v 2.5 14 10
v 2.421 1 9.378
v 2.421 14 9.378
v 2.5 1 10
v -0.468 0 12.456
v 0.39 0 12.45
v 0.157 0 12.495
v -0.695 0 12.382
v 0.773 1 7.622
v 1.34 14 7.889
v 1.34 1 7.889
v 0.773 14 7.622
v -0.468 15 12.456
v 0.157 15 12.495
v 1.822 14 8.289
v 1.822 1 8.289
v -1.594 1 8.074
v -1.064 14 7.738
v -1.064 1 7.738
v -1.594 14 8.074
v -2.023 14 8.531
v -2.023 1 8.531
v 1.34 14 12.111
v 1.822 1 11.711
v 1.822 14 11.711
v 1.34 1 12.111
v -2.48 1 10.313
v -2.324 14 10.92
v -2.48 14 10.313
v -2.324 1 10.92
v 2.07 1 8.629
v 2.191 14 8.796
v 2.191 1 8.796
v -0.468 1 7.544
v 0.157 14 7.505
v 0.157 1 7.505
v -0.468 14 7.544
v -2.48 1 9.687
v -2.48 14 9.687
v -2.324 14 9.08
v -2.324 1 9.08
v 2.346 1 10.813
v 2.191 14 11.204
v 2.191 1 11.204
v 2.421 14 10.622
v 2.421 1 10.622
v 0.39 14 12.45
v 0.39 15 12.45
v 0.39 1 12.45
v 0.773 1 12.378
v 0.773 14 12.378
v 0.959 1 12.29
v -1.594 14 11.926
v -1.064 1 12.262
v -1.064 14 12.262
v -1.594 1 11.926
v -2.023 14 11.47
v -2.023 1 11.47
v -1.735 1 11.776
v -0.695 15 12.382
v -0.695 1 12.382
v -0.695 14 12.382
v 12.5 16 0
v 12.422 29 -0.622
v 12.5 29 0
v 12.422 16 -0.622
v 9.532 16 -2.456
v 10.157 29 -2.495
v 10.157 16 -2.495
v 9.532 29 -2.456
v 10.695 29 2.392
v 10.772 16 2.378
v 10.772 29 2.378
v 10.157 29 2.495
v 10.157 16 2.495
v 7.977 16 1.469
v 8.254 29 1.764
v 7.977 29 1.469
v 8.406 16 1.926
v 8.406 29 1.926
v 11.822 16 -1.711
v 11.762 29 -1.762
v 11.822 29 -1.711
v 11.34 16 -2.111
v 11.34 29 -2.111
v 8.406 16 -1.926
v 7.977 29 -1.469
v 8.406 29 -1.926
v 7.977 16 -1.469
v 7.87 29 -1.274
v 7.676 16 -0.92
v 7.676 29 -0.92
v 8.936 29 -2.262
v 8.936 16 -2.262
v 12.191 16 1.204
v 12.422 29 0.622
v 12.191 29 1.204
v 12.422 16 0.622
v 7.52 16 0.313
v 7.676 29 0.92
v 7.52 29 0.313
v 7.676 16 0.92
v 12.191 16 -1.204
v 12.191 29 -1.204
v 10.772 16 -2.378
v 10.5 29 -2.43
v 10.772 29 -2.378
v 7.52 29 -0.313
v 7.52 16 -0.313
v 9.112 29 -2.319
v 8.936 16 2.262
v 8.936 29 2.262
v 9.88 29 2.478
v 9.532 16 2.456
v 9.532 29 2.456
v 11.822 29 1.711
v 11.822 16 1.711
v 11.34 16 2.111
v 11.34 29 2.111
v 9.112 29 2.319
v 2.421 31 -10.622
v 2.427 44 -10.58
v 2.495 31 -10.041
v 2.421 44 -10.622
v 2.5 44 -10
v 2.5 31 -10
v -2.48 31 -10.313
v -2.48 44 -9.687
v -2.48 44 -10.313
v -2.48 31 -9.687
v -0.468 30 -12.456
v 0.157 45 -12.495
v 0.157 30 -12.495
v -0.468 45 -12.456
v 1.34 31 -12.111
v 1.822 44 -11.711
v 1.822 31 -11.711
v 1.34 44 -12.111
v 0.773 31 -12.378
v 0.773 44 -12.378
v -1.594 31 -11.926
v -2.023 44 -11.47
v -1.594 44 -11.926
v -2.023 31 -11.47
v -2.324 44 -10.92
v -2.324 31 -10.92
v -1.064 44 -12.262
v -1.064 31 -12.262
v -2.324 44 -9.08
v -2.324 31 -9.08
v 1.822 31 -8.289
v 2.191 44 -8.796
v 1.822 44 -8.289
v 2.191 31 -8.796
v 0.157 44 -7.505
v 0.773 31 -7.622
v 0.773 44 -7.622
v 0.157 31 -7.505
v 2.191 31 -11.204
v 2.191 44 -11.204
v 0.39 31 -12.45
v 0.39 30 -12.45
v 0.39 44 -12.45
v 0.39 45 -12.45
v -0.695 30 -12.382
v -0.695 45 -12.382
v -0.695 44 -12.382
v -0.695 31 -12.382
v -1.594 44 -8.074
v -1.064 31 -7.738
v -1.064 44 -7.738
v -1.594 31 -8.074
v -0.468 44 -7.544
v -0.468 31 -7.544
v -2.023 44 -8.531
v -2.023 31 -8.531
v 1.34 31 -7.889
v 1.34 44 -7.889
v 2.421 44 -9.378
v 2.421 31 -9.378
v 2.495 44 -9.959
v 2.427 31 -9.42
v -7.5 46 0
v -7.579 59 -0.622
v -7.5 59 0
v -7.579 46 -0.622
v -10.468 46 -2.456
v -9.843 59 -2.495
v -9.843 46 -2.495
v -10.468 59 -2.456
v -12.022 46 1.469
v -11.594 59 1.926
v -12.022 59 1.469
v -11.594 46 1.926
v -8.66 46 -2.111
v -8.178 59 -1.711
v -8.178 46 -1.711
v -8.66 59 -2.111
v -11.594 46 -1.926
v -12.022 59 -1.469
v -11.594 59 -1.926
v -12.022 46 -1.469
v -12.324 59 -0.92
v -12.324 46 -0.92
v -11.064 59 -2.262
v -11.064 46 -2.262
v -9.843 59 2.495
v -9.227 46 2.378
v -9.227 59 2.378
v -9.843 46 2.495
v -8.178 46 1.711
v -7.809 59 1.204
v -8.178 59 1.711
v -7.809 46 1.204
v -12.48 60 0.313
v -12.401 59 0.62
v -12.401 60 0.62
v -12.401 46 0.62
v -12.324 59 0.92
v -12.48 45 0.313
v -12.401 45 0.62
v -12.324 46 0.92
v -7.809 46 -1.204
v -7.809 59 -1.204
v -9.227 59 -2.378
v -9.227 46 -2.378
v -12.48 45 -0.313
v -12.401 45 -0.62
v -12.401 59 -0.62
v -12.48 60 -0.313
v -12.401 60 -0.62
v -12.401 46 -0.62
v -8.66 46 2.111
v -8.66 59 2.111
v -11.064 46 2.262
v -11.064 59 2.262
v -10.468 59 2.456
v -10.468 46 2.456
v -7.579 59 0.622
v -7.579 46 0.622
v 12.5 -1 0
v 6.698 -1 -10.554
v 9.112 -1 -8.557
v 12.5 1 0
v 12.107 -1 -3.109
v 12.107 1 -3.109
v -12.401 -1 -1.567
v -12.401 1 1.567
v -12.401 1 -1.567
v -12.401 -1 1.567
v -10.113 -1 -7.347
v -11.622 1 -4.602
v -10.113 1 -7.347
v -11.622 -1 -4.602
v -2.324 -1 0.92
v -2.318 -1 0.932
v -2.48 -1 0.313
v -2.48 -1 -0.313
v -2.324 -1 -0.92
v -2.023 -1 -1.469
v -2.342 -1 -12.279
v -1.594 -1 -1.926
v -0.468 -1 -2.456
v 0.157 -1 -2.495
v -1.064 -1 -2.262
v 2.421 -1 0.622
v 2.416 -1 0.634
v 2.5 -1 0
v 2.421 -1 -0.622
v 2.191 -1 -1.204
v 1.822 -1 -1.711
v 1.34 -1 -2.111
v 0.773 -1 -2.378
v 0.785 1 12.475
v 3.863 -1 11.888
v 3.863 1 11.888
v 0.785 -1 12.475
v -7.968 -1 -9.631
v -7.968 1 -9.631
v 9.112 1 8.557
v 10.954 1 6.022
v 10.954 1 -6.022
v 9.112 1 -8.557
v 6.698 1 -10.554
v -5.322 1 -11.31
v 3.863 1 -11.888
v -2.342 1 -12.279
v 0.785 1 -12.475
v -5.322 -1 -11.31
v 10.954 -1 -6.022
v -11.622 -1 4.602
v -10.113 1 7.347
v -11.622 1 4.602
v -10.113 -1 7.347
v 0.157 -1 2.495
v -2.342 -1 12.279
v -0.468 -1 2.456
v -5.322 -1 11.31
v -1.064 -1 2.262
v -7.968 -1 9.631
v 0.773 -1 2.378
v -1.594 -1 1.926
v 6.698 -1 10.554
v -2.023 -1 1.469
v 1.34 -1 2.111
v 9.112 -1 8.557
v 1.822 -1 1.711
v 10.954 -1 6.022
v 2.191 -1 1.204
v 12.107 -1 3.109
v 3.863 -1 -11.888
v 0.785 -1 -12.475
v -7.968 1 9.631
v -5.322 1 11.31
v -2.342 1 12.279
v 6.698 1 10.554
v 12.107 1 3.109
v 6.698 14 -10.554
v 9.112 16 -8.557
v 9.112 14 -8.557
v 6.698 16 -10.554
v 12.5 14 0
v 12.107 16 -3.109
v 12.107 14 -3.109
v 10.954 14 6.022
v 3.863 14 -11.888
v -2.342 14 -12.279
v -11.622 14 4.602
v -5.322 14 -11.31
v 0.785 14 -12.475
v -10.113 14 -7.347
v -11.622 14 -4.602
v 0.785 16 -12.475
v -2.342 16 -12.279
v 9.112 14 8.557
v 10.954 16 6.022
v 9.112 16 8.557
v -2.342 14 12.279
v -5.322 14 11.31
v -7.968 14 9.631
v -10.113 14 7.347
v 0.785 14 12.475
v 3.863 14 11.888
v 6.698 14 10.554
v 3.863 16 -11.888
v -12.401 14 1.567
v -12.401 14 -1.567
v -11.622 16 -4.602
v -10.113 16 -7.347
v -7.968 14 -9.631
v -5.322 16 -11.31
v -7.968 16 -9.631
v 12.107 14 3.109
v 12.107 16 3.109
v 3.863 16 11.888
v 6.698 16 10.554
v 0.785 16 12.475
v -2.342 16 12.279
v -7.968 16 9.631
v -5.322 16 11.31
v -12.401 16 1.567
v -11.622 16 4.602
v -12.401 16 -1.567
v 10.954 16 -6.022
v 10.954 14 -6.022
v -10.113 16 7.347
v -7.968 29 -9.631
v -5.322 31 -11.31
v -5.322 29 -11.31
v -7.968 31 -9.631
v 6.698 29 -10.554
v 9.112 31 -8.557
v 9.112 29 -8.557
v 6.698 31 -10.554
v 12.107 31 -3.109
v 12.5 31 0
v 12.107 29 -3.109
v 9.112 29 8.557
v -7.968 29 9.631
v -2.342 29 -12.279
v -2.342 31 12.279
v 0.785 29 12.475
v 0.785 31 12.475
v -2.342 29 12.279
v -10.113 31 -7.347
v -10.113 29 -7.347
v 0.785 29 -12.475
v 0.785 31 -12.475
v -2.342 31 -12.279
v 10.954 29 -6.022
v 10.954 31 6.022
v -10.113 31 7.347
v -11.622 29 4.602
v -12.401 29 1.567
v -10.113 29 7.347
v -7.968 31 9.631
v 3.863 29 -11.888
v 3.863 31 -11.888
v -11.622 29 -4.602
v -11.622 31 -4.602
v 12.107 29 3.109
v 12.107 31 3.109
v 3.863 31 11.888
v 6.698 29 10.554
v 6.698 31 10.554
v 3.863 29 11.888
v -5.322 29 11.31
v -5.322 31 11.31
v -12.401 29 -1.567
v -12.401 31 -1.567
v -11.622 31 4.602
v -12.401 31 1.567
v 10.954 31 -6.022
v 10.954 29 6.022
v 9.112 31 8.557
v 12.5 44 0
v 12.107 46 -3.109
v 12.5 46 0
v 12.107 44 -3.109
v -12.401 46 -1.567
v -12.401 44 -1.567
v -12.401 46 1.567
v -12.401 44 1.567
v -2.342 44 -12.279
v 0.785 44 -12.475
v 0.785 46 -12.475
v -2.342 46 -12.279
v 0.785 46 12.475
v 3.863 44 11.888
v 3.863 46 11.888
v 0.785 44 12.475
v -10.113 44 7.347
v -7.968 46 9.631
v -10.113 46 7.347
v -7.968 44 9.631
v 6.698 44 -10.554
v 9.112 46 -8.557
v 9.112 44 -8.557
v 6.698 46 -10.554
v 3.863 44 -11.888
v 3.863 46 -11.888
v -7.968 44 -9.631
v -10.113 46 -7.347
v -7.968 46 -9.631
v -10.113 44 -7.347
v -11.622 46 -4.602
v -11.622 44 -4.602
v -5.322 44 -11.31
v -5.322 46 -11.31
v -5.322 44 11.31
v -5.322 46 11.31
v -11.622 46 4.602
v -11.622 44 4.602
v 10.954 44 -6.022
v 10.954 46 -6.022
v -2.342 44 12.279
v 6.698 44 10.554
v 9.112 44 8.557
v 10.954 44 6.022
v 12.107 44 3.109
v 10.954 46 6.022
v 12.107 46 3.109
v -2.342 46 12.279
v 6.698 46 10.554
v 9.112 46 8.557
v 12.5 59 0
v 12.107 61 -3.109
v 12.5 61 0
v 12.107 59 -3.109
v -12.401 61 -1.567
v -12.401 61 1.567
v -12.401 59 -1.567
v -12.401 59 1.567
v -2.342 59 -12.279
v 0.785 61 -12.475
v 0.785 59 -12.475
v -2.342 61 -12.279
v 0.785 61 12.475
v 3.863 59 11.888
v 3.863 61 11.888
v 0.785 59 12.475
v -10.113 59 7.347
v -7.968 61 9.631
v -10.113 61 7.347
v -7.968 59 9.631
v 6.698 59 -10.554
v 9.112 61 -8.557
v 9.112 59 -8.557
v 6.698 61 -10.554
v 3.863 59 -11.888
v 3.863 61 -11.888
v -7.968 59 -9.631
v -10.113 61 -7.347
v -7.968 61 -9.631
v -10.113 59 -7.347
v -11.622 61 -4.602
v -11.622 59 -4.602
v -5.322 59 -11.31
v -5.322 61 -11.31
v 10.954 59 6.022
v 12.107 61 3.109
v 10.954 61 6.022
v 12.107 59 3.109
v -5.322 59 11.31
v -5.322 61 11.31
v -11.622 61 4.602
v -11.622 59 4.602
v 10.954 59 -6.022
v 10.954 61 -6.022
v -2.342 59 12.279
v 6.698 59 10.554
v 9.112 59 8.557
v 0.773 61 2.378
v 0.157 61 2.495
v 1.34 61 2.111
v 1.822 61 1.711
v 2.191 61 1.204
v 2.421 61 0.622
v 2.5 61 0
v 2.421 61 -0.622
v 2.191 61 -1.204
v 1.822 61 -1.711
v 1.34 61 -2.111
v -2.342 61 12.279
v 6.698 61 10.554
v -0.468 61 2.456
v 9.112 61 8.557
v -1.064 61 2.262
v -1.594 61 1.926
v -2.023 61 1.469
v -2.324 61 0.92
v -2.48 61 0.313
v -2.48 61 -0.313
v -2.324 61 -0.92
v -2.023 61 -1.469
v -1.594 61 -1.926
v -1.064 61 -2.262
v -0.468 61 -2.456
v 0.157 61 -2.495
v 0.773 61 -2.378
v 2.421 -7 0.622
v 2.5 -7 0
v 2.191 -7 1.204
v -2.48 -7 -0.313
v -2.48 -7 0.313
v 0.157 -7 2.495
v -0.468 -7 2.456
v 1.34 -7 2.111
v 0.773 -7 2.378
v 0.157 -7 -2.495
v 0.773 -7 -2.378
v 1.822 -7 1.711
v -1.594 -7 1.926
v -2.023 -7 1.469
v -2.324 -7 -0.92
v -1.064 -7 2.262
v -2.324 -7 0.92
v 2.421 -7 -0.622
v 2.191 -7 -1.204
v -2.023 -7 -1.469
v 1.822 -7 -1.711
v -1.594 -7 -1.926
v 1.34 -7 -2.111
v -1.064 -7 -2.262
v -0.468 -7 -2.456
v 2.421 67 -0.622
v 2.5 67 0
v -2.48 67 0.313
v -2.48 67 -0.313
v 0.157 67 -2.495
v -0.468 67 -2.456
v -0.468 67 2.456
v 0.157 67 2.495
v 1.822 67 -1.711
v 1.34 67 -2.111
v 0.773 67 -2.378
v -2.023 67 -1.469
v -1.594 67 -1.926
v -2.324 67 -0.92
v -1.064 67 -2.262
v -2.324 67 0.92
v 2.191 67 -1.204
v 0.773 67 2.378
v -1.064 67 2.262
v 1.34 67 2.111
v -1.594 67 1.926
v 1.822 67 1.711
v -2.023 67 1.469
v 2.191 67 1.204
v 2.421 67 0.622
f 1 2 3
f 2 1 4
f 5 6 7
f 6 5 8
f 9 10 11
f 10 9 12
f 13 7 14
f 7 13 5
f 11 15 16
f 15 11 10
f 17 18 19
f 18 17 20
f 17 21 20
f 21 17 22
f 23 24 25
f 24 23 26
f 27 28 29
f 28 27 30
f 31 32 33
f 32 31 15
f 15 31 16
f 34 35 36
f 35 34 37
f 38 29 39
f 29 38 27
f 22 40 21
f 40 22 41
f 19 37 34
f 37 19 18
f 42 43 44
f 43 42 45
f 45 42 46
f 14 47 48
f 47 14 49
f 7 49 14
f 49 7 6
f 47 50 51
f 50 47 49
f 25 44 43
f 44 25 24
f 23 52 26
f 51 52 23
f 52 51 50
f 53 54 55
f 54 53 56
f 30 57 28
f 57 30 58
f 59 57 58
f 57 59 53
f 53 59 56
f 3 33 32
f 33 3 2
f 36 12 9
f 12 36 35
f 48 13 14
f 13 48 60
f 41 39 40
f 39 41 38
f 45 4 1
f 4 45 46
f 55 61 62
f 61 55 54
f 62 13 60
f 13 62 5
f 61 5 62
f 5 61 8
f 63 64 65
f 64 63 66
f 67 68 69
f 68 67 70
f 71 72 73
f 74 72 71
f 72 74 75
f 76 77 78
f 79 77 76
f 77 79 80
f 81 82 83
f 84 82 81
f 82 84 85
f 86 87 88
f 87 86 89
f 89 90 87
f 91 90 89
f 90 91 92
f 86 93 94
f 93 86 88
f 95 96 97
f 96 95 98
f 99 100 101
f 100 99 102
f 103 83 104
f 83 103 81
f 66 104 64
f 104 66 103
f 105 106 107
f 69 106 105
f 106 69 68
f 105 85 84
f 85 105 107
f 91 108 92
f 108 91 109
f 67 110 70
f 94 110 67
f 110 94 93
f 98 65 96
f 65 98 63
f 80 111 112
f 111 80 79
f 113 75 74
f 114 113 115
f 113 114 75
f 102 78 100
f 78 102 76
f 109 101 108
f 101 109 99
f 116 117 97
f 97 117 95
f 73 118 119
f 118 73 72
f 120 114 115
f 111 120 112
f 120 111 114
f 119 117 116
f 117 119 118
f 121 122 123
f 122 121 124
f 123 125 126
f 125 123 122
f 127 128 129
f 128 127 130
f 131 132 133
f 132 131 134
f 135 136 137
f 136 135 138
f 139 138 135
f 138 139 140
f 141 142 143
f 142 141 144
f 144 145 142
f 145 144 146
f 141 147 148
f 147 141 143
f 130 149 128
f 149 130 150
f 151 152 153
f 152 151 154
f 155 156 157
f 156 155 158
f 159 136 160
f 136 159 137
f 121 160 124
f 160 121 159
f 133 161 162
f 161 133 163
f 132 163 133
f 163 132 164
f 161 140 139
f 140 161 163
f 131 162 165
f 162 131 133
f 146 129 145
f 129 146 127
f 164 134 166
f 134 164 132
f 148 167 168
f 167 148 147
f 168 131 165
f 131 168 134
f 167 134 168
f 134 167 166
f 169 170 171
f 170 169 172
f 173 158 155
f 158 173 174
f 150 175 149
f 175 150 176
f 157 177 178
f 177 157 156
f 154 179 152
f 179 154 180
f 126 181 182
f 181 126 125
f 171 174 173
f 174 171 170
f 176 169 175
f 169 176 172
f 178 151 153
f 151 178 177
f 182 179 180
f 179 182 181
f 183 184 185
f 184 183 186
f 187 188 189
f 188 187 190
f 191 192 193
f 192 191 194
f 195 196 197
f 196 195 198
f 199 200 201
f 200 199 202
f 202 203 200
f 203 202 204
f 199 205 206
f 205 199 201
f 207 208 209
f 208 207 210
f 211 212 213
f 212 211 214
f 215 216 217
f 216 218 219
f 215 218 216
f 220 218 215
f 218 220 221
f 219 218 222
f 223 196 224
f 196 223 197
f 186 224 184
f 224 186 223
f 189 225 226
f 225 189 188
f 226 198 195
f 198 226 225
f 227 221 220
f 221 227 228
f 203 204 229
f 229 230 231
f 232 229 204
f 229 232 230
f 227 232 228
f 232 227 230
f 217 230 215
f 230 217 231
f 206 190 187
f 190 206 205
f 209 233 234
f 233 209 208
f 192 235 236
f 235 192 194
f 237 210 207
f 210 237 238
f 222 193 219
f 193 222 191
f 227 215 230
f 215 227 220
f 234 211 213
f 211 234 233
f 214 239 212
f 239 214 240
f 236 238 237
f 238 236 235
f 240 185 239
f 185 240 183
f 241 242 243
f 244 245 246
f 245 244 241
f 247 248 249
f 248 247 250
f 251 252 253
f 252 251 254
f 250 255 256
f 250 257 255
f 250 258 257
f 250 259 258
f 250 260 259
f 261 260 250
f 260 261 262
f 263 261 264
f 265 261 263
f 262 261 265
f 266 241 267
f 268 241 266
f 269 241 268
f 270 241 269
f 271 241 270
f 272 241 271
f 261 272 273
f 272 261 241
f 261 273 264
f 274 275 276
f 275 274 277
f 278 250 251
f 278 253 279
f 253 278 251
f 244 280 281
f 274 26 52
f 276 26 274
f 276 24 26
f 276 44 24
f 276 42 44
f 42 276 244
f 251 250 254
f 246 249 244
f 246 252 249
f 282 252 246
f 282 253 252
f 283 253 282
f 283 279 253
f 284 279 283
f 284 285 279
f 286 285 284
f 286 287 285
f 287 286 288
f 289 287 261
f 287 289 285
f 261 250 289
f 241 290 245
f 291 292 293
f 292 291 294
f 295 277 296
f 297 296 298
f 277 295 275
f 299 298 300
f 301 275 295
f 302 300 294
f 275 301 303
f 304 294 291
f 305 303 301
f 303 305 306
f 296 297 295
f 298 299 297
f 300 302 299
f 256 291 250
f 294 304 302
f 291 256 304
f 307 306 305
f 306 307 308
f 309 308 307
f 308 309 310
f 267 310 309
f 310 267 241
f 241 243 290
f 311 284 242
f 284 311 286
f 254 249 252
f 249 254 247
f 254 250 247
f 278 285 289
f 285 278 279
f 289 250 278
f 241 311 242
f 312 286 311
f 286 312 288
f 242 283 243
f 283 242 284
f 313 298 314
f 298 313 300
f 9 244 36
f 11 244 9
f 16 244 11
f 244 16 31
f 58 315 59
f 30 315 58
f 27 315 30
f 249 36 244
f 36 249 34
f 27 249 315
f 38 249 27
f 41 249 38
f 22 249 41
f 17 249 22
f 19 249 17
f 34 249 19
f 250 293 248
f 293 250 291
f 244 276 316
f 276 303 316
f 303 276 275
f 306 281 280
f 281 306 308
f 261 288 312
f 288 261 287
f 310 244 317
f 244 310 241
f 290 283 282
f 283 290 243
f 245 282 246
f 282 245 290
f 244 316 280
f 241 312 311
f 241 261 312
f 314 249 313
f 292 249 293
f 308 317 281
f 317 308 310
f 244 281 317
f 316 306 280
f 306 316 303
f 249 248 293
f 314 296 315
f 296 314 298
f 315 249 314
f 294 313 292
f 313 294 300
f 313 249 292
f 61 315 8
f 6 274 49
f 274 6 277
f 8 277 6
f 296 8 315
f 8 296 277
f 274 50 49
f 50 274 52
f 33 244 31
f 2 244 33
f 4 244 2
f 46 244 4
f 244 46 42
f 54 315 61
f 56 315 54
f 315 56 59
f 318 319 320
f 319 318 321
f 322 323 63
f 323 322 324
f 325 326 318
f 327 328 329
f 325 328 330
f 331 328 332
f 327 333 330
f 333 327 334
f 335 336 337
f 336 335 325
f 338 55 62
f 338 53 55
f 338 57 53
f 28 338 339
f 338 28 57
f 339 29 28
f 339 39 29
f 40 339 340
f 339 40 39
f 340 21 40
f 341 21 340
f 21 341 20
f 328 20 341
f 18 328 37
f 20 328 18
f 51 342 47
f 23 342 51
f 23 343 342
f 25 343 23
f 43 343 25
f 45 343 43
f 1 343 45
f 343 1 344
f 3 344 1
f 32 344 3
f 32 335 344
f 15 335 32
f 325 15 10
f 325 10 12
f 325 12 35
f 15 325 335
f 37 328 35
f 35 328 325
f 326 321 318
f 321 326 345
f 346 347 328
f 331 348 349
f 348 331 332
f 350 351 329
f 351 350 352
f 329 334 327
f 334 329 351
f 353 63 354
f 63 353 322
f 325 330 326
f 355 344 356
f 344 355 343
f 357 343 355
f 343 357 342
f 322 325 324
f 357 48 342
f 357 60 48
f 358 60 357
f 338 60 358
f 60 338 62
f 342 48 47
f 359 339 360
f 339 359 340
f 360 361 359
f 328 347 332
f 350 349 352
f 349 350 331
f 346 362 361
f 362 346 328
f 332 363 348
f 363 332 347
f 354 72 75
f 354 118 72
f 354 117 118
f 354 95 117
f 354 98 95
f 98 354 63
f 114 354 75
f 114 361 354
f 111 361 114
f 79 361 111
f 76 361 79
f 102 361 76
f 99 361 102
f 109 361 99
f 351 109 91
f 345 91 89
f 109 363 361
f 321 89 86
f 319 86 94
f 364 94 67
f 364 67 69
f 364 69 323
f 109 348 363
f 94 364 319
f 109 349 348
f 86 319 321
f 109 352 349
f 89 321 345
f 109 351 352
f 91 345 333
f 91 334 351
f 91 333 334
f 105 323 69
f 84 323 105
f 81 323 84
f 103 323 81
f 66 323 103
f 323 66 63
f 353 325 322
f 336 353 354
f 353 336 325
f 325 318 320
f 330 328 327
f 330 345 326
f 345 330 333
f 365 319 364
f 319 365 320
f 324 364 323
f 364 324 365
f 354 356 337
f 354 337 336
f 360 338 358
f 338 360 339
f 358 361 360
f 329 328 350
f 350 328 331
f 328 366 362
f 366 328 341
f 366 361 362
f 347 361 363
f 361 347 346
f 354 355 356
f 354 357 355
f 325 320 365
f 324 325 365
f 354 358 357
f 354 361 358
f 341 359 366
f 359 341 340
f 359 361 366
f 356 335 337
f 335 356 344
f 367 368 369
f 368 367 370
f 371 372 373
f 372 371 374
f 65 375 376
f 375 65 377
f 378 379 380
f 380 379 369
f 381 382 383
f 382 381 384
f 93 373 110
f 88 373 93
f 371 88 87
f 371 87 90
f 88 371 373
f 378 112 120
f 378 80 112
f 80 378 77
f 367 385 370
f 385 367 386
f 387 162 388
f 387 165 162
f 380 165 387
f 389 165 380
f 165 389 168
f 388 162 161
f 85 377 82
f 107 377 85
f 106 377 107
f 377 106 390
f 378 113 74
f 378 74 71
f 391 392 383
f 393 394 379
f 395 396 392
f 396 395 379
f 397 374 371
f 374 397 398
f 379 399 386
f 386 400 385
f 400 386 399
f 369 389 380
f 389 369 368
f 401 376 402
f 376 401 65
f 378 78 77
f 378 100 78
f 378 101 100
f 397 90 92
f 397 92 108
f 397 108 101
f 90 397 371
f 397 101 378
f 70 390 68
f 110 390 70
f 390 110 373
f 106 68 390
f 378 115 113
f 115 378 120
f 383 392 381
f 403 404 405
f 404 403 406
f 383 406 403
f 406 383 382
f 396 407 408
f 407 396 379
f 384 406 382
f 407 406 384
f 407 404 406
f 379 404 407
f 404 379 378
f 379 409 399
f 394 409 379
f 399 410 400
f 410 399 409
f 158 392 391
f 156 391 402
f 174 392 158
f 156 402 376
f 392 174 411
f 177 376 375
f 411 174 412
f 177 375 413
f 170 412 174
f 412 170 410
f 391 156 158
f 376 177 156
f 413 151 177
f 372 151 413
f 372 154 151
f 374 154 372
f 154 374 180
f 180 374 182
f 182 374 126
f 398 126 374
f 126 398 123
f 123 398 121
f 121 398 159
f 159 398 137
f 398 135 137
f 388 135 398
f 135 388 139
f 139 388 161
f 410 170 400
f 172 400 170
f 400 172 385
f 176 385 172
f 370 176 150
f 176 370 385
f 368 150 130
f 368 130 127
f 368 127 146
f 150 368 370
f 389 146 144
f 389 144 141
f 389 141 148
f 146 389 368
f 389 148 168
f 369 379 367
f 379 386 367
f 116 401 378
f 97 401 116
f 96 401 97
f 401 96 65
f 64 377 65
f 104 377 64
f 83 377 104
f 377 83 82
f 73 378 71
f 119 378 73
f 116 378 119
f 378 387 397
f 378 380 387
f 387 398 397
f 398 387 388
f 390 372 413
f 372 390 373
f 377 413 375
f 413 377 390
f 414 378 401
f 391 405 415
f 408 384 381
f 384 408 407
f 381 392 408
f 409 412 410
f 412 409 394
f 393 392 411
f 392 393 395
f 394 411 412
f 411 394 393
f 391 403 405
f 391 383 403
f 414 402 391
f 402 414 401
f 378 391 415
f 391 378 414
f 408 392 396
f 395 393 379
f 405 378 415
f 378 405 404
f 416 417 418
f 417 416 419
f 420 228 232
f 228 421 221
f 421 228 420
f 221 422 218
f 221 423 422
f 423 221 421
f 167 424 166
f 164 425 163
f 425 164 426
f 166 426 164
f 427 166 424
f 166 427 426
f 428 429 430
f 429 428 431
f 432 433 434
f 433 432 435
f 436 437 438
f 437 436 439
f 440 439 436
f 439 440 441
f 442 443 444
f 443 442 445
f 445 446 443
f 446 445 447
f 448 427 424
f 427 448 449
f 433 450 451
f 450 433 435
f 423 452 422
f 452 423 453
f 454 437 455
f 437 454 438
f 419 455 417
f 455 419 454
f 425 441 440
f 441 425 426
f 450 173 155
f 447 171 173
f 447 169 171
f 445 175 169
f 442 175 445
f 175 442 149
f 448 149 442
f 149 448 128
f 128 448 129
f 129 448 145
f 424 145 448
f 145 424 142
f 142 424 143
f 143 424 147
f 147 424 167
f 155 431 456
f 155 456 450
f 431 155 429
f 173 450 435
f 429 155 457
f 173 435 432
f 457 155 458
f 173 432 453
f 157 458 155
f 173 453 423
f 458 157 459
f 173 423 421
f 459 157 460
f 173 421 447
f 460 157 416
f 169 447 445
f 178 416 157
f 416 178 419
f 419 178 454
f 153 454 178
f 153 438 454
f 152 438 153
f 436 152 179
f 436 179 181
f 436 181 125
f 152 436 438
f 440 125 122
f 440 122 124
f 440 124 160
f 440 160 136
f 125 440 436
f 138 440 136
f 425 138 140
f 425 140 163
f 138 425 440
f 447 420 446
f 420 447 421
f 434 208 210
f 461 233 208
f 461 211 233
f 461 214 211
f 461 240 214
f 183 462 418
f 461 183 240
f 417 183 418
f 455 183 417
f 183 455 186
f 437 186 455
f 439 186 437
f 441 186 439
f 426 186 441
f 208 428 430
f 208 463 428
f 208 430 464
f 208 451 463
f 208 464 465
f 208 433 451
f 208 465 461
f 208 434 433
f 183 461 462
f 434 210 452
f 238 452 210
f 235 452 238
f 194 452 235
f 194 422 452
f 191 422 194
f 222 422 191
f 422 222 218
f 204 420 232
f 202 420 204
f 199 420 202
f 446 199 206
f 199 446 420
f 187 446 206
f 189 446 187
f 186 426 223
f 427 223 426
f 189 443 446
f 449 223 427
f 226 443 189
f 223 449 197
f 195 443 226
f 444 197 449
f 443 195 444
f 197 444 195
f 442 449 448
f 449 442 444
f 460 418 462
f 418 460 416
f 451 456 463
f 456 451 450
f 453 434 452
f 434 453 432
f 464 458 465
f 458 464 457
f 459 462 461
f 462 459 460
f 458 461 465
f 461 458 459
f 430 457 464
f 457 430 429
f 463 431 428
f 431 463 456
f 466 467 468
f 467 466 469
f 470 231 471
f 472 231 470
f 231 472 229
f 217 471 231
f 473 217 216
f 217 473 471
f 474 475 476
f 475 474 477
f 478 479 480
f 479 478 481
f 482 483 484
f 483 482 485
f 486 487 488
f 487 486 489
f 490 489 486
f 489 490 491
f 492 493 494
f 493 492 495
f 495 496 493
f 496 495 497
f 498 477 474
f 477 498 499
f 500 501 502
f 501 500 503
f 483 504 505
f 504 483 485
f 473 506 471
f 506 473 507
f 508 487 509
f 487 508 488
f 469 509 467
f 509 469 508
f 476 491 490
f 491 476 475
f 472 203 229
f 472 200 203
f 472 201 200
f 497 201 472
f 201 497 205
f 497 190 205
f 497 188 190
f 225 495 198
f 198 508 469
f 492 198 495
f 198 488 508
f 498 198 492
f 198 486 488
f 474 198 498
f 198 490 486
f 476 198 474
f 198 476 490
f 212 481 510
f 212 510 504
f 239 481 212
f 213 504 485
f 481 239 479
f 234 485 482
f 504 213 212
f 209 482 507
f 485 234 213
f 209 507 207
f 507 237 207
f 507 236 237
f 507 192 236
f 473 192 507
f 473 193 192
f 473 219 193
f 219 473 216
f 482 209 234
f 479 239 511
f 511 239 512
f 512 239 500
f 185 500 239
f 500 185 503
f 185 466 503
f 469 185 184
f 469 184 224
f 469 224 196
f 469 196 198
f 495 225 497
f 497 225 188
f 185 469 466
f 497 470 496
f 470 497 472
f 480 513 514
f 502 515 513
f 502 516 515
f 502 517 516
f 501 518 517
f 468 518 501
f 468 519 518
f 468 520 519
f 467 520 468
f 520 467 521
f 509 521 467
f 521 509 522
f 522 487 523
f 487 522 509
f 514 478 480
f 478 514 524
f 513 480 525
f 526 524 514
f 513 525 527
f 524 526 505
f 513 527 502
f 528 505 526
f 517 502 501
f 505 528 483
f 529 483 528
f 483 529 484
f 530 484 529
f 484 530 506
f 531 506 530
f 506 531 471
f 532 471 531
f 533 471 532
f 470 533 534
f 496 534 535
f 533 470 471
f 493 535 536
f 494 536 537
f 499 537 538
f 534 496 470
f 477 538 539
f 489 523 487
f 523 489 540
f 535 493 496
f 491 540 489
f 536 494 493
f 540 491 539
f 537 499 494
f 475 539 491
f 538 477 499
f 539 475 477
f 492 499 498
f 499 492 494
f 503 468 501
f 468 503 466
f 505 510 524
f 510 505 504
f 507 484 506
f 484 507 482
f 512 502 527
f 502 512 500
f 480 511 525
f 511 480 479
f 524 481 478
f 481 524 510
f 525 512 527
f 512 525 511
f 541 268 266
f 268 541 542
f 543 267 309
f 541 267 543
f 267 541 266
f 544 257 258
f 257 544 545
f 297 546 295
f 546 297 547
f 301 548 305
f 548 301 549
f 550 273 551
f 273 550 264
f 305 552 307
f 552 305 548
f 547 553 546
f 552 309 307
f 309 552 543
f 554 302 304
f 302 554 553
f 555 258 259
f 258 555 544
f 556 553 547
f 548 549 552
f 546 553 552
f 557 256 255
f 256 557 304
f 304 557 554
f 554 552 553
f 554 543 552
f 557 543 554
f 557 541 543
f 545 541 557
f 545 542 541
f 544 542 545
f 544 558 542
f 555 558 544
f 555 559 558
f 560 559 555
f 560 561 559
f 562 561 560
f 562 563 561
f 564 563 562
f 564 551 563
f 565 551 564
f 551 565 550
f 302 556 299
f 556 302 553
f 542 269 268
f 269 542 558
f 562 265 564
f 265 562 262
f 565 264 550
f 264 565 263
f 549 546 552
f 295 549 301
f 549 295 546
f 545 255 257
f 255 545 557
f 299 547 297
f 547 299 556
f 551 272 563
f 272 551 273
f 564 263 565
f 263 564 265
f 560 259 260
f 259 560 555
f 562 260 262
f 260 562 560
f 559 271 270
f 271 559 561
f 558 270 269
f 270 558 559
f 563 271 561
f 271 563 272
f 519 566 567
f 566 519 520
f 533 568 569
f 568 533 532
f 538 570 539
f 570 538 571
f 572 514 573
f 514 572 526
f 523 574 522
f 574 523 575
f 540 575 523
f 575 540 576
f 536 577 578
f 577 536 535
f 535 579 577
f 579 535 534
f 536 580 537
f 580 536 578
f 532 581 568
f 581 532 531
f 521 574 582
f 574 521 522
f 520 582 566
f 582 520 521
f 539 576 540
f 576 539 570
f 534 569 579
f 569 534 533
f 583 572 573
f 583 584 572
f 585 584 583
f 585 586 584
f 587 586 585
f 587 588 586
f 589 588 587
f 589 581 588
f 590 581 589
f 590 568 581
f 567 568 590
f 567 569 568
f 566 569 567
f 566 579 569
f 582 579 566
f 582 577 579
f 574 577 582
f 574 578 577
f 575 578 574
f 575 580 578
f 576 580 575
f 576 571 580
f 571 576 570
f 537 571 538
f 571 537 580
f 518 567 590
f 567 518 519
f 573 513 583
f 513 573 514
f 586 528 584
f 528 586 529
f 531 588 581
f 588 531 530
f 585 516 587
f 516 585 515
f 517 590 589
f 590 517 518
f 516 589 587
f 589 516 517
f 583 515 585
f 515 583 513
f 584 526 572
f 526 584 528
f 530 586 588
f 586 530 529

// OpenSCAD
quality=25;

gap_dist=15;

union()
{

//bars
piston_dist=10;
bar_radius=2.5;
    
translate([0,0,piston_dist]) rotate([-90,0,0]) cylinder(r=bar_radius,h=gap_dist,$fn=quality);
translate([piston_dist,gap_dist,0]) rotate([-90,0,0]) cylinder(r=bar_radius,h=gap_dist,$fn=quality);
translate([0,gap_dist*2,-piston_dist]) rotate([-90,0,0]) cylinder(r=bar_radius,h=gap_dist,$fn=quality);
translate([-piston_dist,gap_dist*3,0]) rotate([-90,0,0]) cylinder(r=bar_radius,h=gap_dist,$fn=quality);



//gears here
gear_thickness=2;
    
translate([0,0-gear_thickness/2,0]) rotate([-90,0,0]) cylinder(r=piston_dist+bar_radius,h=gear_thickness,$fn=quality);
translate([0,gap_dist-gear_thickness/2,0]) rotate([-90,0,0]) cylinder(r=piston_dist+bar_radius,h=gear_thickness,$fn=quality);
translate([0,gap_dist*2-gear_thickness/2,0]) rotate([-90,0,0]) cylinder(r=piston_dist+bar_radius,h=gear_thickness,$fn=quality);
translate([0,gap_dist*3-gear_thickness/2,0]) rotate([-90,0,0]) cylinder(r=piston_dist+bar_radius,h=gear_thickness,$fn=quality);
translate([0,gap_dist*4-gear_thickness/2,0]) rotate([-90,0,0]) cylinder(r=piston_dist+bar_radius,h=gear_thickness,$fn=quality);



//attachment end joints
joint_radius=2.5;
joint_height=7;

rotate([90,0,0]) cylinder(r=joint_radius,h=joint_height,$fn=quality);
translate([0,gap_dist*4,0]) rotate([-90,0,0]) cylinder(r=joint_radius,h=joint_height,$fn=quality);
}
